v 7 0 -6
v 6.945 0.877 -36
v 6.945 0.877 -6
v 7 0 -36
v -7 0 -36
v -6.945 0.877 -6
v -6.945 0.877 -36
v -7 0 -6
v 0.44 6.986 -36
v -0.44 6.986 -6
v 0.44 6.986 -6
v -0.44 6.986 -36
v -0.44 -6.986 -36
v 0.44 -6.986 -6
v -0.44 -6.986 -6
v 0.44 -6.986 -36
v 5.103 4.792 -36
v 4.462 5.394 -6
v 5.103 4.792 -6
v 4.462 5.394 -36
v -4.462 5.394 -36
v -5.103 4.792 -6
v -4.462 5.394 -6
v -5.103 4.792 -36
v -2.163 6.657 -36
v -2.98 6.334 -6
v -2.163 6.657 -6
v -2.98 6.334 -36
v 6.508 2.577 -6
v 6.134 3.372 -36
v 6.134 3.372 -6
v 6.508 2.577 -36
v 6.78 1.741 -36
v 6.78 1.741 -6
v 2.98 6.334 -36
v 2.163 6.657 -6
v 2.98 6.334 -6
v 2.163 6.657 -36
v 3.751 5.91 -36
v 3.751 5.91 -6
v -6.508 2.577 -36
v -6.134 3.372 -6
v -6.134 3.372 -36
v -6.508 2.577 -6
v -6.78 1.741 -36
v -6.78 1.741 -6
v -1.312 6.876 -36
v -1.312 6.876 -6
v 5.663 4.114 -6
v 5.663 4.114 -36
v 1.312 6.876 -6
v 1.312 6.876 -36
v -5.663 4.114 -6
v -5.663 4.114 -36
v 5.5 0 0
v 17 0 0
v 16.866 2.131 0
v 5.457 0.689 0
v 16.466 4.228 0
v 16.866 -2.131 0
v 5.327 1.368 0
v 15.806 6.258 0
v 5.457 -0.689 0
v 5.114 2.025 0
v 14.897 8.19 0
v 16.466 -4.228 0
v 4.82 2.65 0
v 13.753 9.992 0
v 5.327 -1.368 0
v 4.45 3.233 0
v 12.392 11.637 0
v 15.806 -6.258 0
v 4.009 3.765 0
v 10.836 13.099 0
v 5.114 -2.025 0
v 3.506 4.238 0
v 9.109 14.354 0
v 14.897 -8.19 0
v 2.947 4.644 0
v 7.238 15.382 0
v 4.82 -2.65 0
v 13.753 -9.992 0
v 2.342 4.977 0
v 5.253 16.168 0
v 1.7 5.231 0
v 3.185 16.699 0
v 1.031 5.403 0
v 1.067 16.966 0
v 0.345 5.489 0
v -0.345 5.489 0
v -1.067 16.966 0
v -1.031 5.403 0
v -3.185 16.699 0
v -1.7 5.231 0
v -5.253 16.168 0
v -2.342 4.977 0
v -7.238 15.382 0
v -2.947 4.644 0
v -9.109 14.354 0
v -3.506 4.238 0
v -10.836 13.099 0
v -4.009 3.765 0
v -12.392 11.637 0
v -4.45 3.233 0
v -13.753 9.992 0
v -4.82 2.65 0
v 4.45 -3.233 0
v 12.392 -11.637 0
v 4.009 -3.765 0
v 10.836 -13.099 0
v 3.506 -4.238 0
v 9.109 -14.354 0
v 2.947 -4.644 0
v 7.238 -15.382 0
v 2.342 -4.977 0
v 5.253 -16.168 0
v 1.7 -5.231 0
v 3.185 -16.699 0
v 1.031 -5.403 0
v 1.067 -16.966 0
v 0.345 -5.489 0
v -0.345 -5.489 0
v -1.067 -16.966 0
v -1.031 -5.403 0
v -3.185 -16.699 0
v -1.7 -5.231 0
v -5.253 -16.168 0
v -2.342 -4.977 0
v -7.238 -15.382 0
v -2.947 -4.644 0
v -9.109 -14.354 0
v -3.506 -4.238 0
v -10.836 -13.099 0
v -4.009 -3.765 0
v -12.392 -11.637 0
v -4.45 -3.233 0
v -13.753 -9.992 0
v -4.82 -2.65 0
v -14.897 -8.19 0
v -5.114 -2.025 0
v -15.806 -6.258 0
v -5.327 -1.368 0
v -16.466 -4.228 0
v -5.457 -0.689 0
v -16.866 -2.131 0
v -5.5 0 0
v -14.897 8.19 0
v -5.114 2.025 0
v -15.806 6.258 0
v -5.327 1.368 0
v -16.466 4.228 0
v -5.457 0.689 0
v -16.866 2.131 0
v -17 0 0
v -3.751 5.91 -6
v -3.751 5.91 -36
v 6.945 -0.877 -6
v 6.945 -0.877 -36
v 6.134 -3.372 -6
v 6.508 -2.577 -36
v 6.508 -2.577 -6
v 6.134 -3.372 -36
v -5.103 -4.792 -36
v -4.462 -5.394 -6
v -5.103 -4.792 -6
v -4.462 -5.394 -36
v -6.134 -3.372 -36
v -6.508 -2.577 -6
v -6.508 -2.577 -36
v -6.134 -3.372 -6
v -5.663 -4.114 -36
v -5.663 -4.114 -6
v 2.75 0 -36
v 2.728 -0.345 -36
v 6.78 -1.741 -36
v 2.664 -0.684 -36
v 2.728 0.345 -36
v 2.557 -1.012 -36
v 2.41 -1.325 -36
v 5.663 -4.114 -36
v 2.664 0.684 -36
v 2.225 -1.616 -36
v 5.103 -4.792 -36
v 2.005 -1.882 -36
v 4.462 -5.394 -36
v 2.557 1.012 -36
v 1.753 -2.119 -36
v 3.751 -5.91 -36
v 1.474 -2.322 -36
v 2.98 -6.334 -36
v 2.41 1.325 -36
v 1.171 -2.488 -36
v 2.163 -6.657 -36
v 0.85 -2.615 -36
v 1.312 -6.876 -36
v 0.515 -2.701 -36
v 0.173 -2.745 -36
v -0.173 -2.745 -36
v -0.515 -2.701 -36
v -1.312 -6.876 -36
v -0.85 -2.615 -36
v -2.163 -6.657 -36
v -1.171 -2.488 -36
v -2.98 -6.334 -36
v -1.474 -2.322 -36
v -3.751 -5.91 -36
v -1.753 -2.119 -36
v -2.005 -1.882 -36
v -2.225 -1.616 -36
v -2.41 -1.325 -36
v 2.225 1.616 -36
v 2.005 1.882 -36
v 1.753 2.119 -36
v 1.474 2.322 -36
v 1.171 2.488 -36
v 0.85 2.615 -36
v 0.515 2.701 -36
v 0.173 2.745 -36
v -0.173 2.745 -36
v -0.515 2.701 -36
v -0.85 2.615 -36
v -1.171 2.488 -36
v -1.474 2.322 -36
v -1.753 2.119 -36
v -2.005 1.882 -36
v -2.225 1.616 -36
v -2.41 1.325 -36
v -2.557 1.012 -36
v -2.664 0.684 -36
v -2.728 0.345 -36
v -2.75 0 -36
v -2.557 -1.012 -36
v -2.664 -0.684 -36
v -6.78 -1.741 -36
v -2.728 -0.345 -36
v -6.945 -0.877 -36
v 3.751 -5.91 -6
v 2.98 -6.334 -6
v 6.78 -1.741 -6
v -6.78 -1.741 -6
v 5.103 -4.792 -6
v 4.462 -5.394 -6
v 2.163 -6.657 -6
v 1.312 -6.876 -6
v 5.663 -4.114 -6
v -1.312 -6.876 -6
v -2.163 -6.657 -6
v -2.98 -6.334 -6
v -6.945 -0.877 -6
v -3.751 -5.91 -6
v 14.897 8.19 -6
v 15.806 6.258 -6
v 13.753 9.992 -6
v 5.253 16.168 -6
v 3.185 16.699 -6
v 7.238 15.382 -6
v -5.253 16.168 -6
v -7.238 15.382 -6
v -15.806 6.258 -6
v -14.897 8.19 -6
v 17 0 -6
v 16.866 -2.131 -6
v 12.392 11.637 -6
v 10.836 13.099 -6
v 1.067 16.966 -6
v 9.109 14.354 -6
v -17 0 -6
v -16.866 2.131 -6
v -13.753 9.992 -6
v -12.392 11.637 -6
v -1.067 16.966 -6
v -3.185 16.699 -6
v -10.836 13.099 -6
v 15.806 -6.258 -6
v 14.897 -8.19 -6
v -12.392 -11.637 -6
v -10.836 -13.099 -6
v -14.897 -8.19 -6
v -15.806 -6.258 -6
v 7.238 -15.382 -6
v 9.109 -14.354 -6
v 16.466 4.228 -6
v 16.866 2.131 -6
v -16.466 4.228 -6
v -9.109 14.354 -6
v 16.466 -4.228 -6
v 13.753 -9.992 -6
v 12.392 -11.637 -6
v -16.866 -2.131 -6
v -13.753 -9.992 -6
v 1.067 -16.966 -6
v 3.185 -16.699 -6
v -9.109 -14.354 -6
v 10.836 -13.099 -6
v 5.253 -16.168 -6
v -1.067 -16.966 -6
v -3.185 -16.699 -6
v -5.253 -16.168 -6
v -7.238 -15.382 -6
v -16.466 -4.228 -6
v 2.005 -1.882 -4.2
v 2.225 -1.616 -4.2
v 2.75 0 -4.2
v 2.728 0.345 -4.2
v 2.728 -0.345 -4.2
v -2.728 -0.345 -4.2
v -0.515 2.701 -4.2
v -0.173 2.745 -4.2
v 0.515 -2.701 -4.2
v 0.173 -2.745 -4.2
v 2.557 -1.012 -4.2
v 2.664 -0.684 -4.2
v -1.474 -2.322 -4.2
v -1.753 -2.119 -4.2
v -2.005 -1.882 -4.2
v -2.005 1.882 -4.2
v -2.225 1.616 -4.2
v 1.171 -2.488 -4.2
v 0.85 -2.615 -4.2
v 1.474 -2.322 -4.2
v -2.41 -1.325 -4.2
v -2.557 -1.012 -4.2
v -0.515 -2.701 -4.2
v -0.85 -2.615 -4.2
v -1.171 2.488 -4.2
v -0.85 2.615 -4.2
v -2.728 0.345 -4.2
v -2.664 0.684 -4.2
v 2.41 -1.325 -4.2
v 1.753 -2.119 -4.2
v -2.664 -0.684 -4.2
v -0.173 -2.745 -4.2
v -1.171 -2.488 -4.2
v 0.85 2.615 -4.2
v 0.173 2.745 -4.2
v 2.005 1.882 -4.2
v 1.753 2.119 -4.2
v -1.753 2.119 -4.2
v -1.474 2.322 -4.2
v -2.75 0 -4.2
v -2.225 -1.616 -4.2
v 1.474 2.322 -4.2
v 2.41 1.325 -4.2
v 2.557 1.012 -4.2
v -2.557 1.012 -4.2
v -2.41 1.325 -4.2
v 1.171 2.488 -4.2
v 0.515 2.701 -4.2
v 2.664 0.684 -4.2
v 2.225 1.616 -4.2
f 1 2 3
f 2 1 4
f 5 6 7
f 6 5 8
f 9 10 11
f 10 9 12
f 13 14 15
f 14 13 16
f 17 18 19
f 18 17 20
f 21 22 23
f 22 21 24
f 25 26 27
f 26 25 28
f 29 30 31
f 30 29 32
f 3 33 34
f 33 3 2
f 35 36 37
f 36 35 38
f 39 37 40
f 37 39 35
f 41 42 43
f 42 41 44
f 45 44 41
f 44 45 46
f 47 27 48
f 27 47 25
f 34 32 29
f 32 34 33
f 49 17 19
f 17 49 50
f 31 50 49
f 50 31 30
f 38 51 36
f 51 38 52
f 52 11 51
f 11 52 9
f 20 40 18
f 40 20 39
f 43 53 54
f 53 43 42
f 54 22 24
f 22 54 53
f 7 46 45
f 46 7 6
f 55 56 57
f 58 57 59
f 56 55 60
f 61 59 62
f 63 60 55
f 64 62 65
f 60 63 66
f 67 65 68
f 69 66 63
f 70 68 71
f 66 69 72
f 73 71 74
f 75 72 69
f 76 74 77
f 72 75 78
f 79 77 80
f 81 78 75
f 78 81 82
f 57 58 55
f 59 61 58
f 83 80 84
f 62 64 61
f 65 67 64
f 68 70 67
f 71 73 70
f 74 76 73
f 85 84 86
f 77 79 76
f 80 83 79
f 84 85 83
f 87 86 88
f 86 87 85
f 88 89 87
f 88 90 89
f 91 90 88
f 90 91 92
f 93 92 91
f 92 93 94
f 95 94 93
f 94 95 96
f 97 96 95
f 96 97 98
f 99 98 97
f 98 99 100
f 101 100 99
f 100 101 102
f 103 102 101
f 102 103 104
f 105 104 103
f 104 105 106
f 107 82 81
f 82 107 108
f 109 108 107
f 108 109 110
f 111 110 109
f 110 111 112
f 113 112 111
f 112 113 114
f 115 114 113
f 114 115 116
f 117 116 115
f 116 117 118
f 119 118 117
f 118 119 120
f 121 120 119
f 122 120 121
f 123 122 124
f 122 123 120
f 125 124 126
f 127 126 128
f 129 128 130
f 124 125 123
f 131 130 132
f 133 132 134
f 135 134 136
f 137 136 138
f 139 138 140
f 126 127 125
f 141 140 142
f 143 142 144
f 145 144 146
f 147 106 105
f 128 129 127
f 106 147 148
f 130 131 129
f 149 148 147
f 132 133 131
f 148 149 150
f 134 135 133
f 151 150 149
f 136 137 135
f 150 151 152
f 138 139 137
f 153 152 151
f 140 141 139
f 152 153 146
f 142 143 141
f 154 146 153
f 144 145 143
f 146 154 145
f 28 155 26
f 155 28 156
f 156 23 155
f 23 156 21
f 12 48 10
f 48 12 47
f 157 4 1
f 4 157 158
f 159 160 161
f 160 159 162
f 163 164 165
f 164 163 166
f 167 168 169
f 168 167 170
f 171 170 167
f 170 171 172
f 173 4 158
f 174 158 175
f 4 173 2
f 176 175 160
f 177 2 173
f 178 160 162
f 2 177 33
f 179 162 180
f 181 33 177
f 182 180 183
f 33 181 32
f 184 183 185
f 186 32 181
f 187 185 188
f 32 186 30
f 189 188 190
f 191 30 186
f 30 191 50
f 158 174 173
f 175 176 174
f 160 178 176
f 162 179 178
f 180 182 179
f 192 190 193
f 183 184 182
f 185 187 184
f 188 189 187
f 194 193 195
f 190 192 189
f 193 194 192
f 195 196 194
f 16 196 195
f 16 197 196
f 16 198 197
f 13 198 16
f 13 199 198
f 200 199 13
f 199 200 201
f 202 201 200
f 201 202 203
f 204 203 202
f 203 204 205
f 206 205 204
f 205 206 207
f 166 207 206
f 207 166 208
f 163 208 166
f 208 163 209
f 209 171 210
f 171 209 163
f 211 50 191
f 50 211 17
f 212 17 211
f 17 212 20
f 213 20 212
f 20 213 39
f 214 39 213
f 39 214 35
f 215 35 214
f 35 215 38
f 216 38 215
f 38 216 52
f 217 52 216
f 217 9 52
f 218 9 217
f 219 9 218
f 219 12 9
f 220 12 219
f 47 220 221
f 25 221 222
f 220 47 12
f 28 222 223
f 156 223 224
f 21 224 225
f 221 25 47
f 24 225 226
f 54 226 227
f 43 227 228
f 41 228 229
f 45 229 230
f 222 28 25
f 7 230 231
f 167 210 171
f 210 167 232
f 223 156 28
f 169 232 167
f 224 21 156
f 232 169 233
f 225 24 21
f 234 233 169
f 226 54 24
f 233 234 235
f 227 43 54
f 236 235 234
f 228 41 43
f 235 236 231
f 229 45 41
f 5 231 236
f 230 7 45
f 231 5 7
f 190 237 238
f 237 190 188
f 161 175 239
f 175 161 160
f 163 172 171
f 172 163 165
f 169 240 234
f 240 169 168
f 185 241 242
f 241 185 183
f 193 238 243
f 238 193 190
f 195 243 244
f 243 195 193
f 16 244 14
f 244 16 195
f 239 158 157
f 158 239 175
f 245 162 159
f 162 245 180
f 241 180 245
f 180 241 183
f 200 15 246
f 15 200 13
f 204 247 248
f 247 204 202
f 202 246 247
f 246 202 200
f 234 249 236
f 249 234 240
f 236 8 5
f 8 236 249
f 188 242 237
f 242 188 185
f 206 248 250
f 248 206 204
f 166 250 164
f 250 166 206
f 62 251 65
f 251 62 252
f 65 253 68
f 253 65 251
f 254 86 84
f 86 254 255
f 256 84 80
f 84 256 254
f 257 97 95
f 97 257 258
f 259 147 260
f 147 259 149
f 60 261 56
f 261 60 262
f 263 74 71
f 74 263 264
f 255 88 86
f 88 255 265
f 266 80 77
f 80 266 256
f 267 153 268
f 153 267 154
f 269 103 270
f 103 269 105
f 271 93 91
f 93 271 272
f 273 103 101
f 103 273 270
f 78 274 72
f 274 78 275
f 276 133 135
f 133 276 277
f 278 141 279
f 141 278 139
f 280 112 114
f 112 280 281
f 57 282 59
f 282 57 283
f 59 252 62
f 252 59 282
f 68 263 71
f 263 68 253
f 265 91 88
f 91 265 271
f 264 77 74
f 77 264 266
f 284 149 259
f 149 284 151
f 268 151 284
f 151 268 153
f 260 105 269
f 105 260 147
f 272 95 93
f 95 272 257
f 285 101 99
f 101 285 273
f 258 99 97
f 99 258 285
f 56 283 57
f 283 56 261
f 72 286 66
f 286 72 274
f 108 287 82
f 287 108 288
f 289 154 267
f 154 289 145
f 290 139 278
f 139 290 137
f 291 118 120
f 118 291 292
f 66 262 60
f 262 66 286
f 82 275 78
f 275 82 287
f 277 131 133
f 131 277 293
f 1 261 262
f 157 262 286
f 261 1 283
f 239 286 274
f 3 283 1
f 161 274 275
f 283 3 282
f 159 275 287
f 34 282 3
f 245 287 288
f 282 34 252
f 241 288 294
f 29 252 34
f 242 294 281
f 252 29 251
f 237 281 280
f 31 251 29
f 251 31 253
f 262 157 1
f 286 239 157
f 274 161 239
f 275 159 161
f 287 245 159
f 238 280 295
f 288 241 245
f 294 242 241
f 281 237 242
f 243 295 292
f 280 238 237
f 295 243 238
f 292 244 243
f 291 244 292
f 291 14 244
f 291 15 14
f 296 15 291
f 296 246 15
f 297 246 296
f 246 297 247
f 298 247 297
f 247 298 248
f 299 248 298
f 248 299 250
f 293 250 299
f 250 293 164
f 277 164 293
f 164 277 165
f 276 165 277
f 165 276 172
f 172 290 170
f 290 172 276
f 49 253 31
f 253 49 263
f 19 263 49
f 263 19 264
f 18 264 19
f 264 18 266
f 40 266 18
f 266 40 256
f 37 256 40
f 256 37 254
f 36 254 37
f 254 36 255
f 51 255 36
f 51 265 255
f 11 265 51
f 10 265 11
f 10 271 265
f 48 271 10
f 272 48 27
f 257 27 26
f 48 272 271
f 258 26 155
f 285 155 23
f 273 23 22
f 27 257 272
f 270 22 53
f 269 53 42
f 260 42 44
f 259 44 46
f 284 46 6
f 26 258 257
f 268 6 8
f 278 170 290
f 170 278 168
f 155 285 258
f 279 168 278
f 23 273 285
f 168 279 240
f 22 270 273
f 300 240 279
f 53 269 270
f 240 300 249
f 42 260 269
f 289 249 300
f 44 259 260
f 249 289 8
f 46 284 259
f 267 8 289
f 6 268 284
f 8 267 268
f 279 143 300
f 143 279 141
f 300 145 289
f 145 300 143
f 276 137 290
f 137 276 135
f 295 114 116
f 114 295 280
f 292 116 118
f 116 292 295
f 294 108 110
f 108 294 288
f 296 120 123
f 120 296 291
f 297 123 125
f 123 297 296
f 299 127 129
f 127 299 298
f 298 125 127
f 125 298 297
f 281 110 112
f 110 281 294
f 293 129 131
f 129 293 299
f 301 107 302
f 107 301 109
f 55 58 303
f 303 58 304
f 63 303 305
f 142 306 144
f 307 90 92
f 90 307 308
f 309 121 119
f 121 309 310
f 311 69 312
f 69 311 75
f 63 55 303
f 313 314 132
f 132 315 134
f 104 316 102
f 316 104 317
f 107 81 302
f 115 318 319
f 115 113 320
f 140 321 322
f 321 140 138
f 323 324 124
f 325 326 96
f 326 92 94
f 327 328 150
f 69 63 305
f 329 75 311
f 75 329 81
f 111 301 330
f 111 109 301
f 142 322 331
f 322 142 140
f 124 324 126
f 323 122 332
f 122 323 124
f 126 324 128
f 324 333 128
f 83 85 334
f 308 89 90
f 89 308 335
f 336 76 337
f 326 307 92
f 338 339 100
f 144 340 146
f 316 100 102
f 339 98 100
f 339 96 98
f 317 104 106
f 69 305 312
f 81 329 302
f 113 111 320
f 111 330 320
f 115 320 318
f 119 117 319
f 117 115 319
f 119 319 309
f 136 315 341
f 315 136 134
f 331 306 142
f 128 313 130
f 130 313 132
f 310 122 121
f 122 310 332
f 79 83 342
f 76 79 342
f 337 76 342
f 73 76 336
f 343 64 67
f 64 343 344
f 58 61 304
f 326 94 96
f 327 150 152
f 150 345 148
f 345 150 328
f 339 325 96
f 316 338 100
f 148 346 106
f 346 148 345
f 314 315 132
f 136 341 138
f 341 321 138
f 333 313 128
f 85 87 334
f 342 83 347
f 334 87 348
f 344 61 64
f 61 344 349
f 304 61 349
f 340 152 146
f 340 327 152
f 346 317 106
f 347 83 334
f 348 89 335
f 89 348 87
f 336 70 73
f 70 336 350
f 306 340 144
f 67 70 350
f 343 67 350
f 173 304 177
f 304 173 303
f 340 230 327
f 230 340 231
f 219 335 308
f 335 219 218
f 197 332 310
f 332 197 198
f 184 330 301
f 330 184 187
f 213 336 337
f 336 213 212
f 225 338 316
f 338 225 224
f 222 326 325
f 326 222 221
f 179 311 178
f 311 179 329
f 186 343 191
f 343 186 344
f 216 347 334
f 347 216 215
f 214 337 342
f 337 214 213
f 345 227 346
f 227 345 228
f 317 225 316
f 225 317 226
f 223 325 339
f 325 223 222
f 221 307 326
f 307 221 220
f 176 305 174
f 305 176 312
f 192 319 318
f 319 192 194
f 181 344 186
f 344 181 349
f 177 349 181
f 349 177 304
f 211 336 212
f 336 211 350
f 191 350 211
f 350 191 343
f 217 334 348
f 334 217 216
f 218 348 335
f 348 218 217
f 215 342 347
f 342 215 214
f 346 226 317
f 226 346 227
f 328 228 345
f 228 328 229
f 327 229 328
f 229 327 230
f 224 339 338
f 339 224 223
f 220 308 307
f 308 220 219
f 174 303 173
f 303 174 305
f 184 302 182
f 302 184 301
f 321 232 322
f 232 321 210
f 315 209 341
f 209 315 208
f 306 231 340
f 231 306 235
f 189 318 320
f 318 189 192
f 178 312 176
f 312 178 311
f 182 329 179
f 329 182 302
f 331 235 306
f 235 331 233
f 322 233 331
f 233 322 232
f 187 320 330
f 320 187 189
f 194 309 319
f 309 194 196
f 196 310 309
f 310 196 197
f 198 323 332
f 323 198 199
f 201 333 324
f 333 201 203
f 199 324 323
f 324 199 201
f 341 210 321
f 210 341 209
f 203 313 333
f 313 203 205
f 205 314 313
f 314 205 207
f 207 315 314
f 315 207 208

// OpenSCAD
$fn = 50;


difference() {
	union() {
		translate(v = [0, 0, -36.0000000000]) {
			cylinder(h = 36, r = 7.0000000000);
		}
		translate(v = [0, 0, -6.0000000000]) {
			cylinder(h = 6, r = 17.0000000000);
		}
	}
	union() {
		translate(v = [0, 0, 0]) {
			rotate(a = [0, 0, 0]) {
				difference() {
					union() {
						#translate(v = [0, 0, -36.0000000000]) {
							cylinder(h = 36, r = 2.2500000000);
						}
						#translate(v = [0, 0, -4.2000000000]) {
							cylinder(h = 4.2000000000, r = 7.0000000000, r1 = 2.7500000000, r2 = 5.5000000000);
						}
						#translate(v = [0, 0, -36.0000000000]) {
							cylinder(h = 36, r = 2.7500000000);
						}
						#translate(v = [0, 0, -36.0000000000]) {
							cylinder(h = 36, r = 2.2500000000);
						}
					}
					union();
				}
			}
		}
	}
}
